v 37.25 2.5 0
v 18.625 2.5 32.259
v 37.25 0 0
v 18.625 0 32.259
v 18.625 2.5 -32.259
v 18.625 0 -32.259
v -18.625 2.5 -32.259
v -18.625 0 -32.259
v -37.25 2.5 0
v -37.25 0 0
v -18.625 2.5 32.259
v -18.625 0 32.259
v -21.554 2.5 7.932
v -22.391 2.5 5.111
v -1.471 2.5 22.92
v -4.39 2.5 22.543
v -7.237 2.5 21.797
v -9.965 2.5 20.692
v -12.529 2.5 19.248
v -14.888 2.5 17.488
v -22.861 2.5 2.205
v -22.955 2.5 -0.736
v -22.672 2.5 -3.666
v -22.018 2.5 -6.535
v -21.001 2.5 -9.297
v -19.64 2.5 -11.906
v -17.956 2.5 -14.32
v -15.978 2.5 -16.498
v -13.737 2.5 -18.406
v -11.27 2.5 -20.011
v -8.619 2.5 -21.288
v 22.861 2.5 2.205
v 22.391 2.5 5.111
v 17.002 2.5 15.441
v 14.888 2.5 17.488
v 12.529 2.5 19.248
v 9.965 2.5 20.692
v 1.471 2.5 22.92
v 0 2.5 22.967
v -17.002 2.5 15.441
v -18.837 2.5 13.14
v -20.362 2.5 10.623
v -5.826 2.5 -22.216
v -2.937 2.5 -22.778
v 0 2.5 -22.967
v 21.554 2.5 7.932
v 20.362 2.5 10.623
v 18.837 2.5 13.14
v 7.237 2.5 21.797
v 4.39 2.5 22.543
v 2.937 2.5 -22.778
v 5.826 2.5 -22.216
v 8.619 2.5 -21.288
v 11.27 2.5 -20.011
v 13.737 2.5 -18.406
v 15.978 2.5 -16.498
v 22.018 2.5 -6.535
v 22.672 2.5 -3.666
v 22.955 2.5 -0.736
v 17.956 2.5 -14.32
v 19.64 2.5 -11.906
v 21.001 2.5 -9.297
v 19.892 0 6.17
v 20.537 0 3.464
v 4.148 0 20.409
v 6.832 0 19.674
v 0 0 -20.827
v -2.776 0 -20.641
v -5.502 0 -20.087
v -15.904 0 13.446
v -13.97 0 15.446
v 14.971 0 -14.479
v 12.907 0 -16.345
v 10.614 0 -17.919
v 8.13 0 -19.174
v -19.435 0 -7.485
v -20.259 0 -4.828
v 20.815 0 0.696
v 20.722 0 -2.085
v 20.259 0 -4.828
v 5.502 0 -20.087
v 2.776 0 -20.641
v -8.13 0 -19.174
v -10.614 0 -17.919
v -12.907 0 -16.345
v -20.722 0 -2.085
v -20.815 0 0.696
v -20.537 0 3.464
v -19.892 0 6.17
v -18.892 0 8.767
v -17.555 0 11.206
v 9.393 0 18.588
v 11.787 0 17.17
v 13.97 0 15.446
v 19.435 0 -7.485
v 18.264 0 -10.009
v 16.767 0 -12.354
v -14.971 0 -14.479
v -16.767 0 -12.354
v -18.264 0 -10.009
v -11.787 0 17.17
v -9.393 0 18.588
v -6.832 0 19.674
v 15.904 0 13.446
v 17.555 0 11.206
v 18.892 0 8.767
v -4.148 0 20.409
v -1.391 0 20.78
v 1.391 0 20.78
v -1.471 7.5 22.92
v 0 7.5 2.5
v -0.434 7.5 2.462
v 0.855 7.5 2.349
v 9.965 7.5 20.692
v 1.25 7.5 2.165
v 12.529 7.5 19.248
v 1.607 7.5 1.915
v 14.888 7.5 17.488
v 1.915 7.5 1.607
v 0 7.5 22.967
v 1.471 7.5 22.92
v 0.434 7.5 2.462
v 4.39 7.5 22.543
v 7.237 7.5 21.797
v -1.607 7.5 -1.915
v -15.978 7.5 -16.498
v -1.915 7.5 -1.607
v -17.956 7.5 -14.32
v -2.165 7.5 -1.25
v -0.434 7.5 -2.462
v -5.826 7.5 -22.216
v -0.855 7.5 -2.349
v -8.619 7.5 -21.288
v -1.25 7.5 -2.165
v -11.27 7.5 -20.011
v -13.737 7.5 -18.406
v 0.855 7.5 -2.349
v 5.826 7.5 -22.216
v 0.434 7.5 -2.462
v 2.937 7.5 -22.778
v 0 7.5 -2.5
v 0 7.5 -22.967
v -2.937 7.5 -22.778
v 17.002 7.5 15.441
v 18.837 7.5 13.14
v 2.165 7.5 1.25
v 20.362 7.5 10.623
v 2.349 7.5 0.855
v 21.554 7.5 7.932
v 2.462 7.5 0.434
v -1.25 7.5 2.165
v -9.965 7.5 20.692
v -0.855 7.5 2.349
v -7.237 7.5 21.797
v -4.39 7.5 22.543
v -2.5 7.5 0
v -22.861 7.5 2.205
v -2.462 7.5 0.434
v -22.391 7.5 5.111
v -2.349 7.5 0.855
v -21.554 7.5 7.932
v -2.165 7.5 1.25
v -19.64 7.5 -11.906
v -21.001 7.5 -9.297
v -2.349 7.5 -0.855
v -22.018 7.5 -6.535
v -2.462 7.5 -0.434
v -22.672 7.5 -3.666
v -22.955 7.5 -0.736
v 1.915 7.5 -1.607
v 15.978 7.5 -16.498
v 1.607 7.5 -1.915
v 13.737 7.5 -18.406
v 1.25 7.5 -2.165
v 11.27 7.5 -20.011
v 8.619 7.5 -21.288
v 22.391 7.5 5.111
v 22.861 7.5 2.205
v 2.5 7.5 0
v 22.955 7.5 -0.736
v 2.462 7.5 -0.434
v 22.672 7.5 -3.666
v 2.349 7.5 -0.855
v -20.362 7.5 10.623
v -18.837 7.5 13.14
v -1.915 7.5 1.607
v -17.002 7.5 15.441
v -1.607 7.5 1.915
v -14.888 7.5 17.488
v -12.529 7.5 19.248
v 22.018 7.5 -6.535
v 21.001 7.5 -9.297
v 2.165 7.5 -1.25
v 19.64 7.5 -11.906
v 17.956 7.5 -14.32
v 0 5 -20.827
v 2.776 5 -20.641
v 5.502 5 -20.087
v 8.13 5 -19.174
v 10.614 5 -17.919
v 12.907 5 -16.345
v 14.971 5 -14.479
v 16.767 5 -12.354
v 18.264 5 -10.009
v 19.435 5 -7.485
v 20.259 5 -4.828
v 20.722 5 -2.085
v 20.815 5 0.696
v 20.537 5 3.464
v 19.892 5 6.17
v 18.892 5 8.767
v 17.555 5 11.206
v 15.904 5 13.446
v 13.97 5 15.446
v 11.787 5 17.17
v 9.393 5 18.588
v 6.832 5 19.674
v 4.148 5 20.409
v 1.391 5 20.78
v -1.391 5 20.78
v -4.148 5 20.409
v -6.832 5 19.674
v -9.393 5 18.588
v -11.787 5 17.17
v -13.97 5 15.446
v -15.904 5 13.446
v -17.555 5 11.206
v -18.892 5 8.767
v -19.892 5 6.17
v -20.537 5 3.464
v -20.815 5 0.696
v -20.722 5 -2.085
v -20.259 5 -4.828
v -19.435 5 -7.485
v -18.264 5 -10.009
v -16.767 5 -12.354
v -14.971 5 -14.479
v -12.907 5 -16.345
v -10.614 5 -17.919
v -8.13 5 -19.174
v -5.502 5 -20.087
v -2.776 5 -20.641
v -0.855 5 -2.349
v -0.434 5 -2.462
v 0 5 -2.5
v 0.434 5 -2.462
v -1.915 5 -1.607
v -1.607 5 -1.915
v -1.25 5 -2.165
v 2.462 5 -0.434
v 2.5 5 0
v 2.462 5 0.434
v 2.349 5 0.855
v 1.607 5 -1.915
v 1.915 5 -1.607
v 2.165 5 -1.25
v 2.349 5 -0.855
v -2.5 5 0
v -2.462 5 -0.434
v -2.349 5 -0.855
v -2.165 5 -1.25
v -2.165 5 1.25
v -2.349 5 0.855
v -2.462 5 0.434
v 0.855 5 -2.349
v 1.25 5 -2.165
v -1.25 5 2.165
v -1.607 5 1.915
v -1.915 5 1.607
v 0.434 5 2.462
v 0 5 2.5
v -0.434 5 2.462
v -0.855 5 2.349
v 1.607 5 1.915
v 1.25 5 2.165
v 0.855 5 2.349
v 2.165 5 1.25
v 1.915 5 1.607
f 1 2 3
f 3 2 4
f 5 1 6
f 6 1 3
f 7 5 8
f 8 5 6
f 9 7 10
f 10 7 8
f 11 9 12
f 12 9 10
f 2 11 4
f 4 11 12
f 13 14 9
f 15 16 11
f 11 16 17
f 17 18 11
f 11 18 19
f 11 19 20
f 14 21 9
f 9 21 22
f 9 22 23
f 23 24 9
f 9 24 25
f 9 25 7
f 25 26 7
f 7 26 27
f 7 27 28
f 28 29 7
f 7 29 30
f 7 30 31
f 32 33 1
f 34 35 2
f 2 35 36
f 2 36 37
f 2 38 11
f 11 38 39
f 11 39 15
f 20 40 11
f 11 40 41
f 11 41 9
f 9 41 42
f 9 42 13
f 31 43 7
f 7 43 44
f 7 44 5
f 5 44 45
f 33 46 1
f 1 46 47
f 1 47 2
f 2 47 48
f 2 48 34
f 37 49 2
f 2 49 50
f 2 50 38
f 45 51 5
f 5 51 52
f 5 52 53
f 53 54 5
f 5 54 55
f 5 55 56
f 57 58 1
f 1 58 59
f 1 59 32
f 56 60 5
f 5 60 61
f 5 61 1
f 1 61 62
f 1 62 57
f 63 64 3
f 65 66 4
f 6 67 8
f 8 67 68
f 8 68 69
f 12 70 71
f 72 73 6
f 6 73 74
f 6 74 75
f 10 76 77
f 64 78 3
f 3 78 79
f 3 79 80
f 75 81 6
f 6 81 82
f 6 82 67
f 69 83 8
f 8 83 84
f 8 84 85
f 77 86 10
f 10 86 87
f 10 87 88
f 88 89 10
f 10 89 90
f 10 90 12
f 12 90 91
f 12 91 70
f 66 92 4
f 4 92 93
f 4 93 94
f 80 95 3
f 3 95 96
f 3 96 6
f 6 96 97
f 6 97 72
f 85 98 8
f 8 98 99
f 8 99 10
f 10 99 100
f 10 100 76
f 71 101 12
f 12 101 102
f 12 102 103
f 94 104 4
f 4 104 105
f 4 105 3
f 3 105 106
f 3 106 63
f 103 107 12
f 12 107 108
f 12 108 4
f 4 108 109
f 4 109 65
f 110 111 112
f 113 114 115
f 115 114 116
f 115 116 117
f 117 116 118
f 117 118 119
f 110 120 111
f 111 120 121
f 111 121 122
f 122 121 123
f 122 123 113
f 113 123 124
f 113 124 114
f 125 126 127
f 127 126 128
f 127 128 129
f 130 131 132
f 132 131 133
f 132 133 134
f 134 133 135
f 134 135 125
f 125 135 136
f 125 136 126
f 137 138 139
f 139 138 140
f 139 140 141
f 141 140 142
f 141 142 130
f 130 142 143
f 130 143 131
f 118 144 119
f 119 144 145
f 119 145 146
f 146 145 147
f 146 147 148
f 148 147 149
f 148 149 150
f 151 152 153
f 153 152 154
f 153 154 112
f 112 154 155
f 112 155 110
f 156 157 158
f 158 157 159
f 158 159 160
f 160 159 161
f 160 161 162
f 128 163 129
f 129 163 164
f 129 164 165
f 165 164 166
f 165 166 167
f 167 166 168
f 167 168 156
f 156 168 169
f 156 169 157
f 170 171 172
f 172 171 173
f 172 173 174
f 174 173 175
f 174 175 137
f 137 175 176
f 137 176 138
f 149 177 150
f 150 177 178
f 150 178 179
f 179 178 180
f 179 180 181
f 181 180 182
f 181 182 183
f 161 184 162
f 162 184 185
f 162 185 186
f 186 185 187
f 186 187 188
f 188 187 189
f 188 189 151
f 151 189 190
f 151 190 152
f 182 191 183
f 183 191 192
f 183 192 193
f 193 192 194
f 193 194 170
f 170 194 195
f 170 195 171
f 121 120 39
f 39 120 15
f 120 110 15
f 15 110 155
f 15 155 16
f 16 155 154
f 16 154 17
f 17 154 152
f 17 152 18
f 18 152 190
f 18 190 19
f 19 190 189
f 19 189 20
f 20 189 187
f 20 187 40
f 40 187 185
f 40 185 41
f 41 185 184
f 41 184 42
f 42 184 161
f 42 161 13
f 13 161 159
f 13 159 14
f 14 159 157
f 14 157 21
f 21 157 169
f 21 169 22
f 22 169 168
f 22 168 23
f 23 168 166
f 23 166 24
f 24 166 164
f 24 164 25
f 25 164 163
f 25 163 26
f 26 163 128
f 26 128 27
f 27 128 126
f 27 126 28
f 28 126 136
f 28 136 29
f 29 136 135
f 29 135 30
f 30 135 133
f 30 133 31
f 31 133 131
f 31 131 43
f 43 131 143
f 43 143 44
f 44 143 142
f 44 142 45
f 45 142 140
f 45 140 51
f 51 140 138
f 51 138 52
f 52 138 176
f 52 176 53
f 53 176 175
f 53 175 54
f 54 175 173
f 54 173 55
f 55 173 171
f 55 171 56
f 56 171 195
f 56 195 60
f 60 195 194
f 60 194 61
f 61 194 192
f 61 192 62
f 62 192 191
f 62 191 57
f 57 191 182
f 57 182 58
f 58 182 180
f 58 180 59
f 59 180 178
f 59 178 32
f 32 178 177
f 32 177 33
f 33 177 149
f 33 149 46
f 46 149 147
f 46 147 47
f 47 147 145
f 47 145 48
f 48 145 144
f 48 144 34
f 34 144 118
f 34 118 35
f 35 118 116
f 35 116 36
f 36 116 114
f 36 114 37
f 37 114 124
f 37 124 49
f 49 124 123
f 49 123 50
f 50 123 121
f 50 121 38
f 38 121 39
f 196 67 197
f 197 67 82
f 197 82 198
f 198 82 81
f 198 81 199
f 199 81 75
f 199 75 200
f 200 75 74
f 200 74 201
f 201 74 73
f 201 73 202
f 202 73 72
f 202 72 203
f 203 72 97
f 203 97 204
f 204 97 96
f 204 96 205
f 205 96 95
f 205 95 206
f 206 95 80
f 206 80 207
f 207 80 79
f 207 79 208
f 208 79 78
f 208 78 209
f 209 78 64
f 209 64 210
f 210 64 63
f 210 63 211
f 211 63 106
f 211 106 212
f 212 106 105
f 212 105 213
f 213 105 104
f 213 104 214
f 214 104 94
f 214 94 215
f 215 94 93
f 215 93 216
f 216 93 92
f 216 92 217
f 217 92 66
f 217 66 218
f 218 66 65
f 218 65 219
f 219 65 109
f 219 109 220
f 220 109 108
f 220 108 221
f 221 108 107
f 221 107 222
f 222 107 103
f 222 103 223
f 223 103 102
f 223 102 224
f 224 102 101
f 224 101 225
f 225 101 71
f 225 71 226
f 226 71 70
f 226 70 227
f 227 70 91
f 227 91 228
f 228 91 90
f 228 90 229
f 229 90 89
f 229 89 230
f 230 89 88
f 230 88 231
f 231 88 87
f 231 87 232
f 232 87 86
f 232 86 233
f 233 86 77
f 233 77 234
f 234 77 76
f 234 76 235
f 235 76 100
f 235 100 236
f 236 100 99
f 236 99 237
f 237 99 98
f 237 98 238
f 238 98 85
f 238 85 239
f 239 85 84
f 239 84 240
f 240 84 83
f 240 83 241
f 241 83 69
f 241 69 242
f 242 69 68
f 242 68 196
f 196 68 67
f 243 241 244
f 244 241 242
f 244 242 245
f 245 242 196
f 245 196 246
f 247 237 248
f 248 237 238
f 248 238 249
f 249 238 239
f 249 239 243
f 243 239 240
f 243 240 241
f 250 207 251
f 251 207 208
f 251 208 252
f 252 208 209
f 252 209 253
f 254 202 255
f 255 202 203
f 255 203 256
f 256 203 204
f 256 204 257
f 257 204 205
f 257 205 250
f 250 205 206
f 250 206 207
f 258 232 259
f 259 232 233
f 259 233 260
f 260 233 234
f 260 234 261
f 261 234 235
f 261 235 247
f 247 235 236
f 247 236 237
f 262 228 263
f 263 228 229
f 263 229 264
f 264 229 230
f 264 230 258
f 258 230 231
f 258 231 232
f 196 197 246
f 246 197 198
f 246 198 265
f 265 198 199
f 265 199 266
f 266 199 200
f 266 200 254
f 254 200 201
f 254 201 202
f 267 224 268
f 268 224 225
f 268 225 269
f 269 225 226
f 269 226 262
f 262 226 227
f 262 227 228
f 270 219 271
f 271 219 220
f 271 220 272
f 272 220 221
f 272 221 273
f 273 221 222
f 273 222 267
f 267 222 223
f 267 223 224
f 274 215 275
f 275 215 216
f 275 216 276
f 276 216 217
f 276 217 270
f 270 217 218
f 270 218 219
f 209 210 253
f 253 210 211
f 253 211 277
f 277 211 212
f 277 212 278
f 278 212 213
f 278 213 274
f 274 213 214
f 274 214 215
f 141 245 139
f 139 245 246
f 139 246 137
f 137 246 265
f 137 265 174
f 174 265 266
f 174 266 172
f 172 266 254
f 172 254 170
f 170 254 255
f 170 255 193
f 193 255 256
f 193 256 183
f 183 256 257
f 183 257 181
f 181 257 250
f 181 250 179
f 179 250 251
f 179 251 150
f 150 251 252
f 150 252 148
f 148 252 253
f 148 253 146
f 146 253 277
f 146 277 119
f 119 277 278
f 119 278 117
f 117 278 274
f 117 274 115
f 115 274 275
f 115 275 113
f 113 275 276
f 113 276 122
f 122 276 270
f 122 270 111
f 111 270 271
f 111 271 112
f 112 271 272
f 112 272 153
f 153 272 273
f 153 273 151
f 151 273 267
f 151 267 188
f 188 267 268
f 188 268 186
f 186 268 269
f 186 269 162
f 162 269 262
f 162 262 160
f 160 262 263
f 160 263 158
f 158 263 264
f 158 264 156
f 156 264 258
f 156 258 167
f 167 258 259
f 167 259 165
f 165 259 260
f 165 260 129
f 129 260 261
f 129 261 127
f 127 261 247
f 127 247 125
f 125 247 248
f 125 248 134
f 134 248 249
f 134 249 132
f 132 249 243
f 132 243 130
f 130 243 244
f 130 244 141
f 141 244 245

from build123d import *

# Parameters (mm, degrees)
BOSS_EXTRUDE1_DEPTH = 2.5
SKETCH3_R           = 2.5
CUT_EXTRUDE1_DEPTH  = 2.5
SKETCH4_R           = 22.966828386
BOSS_EXTRUDE2_DEPTH = 5
SKETCH5_R           = 20.826616742
CUT_EXTRUDE2_DEPTH  = 5
SKETCH6_R           = 2.5
CUT_EXTRUDE3_DEPTH  = 5


with BuildPart() as part:
    # Sketch2 → Boss-Extrude1 (new body)
    with BuildSketch(Plane(origin=(0, 0, 0), x_dir=(1, 0, 0), z_dir=(0, 1, 0))):
        Polygon((37.25, 0), (18.625, 32.259446291), (-18.625, 32.259446291), (-37.25, 0), (-18.625, -32.259446291), (18.625, -32.259446291), align=None)
    extrude(amount=BOSS_EXTRUDE1_DEPTH)

    # Sketch3 → Cut-Extrude1 (cut)
    with BuildSketch(Plane.XZ):
        with Locations(Location((0, 0, 0), (0, 0, 270))):
            Circle(SKETCH3_R)
    extrude(amount=-CUT_EXTRUDE1_DEPTH, mode=Mode.SUBTRACT)

    # Sketch4 → Boss-Extrude2 (add)
    with BuildSketch(Plane(origin=(0, 2.5, 0), x_dir=(1, 0, 0), z_dir=(0, 1, 0))):
        with Locations(Location((0, 0, 0), (0, 0, 270))):
            Circle(SKETCH4_R)
    extrude(amount=BOSS_EXTRUDE2_DEPTH)

    # Sketch5 → Cut-Extrude2 (cut)
    with BuildSketch(Plane.XZ):
        with Locations(Location((0, 0, 0), (0, 0, 270))):
            Circle(SKETCH5_R)
    extrude(amount=-CUT_EXTRUDE2_DEPTH, mode=Mode.SUBTRACT)

    # Sketch6 → Cut-Extrude3 (cut)
    with BuildSketch(Plane.XZ.offset(-5)):
        with Locations(Location((0, 0, 0), (0, 0, 270))):
            Circle(SKETCH6_R)
    extrude(amount=-CUT_EXTRUDE3_DEPTH, mode=Mode.SUBTRACT)


solid = part.part
